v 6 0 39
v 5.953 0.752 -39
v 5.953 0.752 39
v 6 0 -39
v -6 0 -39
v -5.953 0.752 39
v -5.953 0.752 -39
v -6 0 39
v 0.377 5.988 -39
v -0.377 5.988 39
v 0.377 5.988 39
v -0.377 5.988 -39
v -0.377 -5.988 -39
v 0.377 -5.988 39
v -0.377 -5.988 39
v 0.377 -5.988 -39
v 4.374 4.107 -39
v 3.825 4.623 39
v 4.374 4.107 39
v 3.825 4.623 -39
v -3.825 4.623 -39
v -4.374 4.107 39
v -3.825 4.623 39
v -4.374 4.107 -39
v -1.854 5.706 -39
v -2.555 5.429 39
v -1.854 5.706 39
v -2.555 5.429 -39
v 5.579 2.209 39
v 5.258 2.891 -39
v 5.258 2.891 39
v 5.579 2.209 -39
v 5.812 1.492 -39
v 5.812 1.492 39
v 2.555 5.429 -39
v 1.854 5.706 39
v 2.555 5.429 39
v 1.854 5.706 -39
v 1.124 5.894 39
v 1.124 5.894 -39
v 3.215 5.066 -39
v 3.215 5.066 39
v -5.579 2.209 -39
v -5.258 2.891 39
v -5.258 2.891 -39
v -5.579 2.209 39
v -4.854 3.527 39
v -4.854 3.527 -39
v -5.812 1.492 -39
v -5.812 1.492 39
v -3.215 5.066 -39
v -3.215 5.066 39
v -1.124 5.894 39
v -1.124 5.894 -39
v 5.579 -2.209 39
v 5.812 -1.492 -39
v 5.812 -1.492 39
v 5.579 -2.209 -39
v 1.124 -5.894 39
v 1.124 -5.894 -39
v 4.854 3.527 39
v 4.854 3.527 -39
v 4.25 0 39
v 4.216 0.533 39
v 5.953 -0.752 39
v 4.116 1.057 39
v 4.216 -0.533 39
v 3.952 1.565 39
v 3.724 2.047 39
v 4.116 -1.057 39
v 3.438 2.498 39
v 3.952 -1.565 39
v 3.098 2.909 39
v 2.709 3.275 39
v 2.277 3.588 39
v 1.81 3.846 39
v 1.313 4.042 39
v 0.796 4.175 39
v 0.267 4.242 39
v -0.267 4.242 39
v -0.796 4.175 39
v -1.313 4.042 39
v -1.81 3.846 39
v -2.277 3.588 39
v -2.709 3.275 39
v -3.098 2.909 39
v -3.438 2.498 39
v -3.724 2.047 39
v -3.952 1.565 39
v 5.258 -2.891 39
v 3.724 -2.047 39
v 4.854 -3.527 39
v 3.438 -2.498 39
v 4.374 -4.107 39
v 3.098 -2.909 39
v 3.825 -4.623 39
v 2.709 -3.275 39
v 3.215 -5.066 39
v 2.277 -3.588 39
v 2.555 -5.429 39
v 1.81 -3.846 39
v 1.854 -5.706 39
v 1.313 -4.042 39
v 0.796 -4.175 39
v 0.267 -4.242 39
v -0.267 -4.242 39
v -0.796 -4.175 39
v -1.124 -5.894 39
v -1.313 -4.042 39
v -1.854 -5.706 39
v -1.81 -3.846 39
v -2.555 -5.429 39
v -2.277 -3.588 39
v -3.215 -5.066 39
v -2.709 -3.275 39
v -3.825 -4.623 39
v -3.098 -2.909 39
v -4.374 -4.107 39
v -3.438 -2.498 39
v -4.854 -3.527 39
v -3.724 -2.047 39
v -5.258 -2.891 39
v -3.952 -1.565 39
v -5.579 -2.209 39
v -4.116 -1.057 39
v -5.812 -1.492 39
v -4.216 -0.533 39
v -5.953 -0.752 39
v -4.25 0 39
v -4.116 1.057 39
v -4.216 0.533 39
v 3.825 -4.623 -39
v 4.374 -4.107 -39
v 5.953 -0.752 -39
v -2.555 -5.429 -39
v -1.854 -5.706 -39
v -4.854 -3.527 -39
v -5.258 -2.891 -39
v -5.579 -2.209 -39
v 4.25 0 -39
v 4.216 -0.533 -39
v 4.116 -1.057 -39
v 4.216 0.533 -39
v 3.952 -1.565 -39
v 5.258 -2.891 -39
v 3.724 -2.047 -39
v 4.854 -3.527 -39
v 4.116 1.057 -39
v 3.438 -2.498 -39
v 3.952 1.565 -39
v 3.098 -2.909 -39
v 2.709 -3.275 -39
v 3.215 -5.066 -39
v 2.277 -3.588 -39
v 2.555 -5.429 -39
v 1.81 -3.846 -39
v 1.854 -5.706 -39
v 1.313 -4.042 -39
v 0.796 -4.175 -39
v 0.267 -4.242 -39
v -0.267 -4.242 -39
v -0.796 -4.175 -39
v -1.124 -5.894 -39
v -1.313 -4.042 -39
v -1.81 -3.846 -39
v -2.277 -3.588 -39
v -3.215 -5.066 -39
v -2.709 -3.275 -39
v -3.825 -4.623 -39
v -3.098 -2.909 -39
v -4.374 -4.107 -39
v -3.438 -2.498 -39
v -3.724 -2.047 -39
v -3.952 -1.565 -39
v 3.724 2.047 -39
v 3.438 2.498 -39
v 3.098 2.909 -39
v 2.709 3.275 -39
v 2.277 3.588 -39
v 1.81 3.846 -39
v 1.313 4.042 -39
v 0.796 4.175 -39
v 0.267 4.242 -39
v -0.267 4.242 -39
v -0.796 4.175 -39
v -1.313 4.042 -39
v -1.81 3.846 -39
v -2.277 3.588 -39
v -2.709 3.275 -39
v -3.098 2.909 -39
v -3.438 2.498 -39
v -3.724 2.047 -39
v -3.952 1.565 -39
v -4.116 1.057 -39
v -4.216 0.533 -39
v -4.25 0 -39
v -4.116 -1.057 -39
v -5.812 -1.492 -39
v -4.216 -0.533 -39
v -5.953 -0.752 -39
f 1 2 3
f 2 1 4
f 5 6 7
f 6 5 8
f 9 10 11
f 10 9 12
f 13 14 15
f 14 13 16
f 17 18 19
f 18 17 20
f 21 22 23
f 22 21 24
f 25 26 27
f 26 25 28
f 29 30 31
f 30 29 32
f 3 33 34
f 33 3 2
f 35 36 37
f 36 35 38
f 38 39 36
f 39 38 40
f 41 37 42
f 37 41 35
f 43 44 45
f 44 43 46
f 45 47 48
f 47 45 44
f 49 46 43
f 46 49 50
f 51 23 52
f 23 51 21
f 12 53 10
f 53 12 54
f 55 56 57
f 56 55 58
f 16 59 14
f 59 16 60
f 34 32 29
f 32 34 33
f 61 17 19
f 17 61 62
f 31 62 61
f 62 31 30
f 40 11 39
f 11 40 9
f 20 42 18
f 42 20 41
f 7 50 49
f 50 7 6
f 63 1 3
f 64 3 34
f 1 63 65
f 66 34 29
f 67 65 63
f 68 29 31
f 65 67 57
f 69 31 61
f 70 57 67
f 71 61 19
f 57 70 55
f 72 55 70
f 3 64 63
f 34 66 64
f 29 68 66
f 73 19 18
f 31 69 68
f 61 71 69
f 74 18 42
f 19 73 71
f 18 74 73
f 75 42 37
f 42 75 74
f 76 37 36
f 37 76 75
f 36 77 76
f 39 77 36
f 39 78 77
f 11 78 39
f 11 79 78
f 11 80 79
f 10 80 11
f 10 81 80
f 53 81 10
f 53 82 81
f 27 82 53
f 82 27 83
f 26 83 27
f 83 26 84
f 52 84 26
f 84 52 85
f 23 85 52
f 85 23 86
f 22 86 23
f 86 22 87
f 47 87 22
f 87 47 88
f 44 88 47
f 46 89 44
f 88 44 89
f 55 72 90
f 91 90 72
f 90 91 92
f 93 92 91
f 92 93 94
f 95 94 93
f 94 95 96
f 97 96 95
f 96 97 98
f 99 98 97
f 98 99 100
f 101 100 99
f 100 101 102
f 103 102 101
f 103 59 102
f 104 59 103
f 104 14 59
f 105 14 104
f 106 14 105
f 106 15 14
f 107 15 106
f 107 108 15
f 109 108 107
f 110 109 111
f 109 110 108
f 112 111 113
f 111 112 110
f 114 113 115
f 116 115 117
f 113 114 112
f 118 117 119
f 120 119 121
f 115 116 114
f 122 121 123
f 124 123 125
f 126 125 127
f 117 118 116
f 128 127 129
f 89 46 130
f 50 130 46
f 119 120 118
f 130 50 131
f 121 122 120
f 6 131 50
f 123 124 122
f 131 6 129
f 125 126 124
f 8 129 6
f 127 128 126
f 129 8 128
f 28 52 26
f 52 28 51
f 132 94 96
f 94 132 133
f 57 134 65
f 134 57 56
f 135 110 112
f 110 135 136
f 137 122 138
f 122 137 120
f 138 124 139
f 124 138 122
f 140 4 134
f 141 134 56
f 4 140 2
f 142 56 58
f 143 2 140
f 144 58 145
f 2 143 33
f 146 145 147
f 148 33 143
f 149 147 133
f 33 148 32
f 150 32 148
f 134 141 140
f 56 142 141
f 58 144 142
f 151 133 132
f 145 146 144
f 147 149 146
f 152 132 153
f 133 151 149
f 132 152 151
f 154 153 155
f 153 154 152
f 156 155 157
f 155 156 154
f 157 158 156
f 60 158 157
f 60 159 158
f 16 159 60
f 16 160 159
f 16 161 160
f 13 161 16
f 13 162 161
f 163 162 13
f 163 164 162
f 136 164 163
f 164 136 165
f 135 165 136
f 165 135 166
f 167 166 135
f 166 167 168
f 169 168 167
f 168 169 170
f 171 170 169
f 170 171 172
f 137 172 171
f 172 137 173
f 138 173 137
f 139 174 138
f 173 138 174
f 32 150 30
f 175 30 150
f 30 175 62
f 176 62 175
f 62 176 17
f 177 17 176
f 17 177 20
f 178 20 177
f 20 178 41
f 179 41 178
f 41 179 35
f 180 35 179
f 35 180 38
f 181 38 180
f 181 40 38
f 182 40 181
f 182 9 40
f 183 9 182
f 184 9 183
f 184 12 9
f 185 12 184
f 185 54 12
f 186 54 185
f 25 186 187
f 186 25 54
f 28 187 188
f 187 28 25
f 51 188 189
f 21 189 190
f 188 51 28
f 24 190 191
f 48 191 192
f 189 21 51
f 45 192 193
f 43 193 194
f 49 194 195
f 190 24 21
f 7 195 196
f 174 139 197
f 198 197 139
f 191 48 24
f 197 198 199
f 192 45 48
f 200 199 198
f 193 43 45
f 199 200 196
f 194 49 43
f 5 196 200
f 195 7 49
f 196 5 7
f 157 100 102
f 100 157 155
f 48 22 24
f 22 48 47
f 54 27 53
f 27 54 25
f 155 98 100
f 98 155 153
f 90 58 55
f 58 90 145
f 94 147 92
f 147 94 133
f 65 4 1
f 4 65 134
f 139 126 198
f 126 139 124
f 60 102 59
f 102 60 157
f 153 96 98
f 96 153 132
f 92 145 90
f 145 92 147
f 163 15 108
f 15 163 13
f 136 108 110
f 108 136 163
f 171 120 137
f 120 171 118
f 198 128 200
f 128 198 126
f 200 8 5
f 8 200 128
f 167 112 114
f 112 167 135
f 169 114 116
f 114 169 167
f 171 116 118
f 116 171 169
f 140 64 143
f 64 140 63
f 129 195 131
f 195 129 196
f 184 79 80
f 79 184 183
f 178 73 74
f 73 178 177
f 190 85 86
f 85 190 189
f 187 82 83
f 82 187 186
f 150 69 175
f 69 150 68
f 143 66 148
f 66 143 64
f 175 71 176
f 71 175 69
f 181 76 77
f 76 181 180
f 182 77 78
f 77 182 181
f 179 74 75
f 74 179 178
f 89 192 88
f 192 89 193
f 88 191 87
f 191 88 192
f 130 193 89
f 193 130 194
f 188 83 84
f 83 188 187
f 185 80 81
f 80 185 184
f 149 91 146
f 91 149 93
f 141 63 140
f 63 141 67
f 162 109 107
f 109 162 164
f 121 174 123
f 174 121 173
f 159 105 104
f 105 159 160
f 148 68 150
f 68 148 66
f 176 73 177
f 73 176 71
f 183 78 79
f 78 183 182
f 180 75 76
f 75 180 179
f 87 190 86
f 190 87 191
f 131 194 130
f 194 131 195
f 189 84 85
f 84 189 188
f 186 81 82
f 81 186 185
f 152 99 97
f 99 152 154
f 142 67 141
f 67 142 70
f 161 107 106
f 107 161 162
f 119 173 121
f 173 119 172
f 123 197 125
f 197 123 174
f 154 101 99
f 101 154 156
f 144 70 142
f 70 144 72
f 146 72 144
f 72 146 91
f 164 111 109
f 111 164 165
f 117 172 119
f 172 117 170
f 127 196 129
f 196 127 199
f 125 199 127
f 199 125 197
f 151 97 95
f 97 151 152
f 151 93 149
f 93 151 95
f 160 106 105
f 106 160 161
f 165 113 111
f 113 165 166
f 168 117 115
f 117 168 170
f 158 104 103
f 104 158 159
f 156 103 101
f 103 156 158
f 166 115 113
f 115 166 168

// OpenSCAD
$fn = 50;


difference() {
	union() {
		translate(v = [0, 0, -39.0000000000]) {
			cylinder(h = 78, r = 6.0000000000);
		}
	}
	union() {
		translate(v = [0, 0, -100.0000000000]) {
			cylinder(h = 200, r = 4.2500000000);
		}
	}
}
